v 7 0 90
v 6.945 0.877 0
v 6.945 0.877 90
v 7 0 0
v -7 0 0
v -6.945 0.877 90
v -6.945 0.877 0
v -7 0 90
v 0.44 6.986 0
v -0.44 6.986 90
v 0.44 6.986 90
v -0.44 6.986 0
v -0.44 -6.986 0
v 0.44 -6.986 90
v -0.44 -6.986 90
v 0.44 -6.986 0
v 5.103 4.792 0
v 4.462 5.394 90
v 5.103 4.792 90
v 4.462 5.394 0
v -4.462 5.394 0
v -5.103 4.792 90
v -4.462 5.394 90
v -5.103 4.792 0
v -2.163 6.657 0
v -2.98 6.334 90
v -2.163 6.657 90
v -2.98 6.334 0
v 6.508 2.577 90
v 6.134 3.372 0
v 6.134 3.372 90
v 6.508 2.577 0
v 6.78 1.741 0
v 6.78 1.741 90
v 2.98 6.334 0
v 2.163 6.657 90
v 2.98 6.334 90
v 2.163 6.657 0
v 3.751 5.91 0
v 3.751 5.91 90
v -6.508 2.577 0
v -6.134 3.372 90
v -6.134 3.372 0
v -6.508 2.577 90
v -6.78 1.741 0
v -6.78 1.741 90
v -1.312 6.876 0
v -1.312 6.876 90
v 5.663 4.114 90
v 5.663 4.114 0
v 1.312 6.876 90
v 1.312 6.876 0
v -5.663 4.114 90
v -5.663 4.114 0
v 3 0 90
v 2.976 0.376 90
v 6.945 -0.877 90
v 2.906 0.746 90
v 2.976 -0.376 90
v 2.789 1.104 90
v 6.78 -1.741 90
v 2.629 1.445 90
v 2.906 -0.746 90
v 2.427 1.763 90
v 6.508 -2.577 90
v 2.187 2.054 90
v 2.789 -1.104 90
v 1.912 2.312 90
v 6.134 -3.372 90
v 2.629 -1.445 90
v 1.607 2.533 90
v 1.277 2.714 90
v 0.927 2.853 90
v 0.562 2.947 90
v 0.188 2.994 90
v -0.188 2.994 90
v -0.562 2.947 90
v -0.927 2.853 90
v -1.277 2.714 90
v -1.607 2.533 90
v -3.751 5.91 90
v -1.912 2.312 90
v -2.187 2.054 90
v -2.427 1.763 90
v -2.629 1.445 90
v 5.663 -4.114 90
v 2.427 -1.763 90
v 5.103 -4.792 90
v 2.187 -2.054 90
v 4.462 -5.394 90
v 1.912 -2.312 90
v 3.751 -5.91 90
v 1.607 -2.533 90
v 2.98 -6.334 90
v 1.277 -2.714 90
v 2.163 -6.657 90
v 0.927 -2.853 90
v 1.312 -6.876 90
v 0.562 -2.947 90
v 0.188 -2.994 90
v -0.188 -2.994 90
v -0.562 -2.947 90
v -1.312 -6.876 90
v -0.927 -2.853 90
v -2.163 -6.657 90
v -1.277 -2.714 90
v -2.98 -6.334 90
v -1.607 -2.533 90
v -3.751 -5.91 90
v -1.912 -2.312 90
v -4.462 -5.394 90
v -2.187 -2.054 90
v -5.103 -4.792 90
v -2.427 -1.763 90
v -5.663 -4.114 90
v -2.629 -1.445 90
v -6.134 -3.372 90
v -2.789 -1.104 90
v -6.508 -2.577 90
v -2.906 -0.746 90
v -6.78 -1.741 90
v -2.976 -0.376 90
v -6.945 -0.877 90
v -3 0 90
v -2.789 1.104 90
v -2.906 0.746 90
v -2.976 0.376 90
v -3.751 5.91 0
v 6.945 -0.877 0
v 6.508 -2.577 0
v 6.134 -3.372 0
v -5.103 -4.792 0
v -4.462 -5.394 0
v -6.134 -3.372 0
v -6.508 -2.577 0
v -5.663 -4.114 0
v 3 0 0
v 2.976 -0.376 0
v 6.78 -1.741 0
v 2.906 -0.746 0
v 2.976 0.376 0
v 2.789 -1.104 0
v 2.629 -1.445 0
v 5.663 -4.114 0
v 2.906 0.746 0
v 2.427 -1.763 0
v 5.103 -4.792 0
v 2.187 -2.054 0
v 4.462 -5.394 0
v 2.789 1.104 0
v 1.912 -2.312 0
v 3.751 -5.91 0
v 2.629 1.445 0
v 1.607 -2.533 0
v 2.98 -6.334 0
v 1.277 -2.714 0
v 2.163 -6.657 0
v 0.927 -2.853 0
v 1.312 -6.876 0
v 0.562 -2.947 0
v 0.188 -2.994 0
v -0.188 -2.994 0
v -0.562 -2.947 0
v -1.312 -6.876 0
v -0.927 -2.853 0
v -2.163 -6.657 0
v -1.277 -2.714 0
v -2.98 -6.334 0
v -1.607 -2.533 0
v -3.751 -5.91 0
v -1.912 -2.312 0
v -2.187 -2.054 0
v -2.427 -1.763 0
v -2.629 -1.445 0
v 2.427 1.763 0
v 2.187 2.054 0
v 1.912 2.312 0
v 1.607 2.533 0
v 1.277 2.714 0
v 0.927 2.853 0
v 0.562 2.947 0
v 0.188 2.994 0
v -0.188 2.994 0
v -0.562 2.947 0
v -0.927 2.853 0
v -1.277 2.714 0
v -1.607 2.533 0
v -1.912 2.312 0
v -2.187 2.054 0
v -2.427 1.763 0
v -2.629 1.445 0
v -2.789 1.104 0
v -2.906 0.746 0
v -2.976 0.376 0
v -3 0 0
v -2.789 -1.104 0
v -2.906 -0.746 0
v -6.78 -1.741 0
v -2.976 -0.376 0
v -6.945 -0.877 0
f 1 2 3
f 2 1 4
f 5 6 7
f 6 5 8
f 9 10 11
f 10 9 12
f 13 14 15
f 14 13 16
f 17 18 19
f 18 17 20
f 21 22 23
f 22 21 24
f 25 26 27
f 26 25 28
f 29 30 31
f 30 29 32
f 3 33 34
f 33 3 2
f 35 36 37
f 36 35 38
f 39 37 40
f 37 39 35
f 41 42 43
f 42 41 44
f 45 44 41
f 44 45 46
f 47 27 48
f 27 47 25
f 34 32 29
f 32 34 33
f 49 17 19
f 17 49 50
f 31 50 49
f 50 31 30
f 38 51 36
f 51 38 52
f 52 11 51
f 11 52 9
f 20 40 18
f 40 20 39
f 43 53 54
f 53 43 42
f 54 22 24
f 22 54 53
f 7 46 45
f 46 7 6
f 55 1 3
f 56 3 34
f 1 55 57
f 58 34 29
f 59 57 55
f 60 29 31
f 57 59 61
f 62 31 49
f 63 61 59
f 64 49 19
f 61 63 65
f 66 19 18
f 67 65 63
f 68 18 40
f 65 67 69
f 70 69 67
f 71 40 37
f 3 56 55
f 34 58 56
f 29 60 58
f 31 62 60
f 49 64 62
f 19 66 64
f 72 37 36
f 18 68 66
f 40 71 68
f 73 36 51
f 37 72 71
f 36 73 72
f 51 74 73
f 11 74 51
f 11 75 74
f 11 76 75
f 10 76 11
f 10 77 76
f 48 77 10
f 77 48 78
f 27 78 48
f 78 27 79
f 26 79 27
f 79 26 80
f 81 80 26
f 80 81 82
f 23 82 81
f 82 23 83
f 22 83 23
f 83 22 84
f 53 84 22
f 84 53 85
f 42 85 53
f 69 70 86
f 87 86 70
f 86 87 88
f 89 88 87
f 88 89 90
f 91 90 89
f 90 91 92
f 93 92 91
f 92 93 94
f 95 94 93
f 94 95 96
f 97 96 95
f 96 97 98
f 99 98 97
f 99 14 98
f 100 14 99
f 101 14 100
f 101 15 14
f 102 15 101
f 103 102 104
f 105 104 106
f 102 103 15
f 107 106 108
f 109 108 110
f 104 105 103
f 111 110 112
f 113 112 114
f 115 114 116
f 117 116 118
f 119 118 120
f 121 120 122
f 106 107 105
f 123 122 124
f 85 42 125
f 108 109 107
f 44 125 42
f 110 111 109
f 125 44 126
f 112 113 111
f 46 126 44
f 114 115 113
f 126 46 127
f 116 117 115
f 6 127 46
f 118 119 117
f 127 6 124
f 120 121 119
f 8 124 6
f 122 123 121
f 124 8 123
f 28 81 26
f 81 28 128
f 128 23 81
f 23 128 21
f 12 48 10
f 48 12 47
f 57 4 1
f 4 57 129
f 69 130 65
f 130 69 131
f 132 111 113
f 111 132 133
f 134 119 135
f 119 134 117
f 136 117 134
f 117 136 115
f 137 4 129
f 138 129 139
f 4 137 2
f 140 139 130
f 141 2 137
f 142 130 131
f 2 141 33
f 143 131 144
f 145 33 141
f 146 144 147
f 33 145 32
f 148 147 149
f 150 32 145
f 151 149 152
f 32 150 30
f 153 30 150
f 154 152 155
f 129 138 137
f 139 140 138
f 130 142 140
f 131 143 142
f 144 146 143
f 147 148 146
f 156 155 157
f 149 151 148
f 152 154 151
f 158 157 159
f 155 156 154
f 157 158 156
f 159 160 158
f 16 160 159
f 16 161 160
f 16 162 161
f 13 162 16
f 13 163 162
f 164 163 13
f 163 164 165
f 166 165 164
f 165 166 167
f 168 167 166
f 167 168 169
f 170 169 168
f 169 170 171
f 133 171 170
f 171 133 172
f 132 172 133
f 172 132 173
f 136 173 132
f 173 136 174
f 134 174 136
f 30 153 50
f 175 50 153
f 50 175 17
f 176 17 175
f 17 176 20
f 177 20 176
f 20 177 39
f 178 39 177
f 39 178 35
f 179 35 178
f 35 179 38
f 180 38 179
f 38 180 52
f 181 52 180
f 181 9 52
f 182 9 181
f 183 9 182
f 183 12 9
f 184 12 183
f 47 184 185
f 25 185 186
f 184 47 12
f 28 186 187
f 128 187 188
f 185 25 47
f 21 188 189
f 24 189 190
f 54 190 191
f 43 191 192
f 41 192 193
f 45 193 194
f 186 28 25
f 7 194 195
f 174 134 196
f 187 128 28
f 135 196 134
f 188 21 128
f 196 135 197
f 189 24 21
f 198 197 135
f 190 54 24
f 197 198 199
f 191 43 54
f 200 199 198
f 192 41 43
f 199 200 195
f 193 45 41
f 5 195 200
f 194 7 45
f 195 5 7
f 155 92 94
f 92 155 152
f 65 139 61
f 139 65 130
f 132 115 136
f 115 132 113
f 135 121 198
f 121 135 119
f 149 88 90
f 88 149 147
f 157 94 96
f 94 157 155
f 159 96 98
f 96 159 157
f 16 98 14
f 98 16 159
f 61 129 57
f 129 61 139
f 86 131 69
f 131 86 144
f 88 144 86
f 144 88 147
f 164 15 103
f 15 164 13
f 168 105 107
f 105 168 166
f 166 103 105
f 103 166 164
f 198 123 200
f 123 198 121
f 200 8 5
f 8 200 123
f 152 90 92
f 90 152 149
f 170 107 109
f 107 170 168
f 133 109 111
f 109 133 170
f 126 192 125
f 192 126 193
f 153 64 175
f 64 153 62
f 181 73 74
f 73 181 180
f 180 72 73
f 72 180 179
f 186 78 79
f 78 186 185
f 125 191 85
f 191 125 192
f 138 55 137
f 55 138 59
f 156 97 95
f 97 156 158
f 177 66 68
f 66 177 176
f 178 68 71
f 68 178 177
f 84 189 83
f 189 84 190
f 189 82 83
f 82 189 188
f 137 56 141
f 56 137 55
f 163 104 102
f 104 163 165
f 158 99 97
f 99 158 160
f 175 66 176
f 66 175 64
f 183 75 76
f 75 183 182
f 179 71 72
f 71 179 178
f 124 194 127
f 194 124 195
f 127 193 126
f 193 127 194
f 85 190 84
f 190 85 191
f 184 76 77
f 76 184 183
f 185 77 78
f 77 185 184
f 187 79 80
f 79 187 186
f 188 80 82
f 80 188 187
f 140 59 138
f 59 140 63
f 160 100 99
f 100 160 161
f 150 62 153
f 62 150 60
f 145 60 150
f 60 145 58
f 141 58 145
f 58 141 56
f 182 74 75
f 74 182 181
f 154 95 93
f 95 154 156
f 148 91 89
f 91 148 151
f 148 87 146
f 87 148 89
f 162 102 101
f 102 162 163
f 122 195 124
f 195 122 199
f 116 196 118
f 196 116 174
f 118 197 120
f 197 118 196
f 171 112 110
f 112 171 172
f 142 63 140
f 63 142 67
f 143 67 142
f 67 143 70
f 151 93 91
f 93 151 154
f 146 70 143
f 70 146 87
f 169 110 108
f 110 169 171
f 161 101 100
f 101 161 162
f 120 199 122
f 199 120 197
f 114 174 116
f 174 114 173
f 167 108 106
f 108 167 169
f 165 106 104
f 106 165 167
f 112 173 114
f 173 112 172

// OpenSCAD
$fn = 50;


difference() {
	union() {
		cylinder(h = 90, r = 7.0000000000);
	}
	union() {
		translate(v = [0, 0, -100]) {
			cylinder(h = 200, r = 3.0000000000);
		}
	}
}
